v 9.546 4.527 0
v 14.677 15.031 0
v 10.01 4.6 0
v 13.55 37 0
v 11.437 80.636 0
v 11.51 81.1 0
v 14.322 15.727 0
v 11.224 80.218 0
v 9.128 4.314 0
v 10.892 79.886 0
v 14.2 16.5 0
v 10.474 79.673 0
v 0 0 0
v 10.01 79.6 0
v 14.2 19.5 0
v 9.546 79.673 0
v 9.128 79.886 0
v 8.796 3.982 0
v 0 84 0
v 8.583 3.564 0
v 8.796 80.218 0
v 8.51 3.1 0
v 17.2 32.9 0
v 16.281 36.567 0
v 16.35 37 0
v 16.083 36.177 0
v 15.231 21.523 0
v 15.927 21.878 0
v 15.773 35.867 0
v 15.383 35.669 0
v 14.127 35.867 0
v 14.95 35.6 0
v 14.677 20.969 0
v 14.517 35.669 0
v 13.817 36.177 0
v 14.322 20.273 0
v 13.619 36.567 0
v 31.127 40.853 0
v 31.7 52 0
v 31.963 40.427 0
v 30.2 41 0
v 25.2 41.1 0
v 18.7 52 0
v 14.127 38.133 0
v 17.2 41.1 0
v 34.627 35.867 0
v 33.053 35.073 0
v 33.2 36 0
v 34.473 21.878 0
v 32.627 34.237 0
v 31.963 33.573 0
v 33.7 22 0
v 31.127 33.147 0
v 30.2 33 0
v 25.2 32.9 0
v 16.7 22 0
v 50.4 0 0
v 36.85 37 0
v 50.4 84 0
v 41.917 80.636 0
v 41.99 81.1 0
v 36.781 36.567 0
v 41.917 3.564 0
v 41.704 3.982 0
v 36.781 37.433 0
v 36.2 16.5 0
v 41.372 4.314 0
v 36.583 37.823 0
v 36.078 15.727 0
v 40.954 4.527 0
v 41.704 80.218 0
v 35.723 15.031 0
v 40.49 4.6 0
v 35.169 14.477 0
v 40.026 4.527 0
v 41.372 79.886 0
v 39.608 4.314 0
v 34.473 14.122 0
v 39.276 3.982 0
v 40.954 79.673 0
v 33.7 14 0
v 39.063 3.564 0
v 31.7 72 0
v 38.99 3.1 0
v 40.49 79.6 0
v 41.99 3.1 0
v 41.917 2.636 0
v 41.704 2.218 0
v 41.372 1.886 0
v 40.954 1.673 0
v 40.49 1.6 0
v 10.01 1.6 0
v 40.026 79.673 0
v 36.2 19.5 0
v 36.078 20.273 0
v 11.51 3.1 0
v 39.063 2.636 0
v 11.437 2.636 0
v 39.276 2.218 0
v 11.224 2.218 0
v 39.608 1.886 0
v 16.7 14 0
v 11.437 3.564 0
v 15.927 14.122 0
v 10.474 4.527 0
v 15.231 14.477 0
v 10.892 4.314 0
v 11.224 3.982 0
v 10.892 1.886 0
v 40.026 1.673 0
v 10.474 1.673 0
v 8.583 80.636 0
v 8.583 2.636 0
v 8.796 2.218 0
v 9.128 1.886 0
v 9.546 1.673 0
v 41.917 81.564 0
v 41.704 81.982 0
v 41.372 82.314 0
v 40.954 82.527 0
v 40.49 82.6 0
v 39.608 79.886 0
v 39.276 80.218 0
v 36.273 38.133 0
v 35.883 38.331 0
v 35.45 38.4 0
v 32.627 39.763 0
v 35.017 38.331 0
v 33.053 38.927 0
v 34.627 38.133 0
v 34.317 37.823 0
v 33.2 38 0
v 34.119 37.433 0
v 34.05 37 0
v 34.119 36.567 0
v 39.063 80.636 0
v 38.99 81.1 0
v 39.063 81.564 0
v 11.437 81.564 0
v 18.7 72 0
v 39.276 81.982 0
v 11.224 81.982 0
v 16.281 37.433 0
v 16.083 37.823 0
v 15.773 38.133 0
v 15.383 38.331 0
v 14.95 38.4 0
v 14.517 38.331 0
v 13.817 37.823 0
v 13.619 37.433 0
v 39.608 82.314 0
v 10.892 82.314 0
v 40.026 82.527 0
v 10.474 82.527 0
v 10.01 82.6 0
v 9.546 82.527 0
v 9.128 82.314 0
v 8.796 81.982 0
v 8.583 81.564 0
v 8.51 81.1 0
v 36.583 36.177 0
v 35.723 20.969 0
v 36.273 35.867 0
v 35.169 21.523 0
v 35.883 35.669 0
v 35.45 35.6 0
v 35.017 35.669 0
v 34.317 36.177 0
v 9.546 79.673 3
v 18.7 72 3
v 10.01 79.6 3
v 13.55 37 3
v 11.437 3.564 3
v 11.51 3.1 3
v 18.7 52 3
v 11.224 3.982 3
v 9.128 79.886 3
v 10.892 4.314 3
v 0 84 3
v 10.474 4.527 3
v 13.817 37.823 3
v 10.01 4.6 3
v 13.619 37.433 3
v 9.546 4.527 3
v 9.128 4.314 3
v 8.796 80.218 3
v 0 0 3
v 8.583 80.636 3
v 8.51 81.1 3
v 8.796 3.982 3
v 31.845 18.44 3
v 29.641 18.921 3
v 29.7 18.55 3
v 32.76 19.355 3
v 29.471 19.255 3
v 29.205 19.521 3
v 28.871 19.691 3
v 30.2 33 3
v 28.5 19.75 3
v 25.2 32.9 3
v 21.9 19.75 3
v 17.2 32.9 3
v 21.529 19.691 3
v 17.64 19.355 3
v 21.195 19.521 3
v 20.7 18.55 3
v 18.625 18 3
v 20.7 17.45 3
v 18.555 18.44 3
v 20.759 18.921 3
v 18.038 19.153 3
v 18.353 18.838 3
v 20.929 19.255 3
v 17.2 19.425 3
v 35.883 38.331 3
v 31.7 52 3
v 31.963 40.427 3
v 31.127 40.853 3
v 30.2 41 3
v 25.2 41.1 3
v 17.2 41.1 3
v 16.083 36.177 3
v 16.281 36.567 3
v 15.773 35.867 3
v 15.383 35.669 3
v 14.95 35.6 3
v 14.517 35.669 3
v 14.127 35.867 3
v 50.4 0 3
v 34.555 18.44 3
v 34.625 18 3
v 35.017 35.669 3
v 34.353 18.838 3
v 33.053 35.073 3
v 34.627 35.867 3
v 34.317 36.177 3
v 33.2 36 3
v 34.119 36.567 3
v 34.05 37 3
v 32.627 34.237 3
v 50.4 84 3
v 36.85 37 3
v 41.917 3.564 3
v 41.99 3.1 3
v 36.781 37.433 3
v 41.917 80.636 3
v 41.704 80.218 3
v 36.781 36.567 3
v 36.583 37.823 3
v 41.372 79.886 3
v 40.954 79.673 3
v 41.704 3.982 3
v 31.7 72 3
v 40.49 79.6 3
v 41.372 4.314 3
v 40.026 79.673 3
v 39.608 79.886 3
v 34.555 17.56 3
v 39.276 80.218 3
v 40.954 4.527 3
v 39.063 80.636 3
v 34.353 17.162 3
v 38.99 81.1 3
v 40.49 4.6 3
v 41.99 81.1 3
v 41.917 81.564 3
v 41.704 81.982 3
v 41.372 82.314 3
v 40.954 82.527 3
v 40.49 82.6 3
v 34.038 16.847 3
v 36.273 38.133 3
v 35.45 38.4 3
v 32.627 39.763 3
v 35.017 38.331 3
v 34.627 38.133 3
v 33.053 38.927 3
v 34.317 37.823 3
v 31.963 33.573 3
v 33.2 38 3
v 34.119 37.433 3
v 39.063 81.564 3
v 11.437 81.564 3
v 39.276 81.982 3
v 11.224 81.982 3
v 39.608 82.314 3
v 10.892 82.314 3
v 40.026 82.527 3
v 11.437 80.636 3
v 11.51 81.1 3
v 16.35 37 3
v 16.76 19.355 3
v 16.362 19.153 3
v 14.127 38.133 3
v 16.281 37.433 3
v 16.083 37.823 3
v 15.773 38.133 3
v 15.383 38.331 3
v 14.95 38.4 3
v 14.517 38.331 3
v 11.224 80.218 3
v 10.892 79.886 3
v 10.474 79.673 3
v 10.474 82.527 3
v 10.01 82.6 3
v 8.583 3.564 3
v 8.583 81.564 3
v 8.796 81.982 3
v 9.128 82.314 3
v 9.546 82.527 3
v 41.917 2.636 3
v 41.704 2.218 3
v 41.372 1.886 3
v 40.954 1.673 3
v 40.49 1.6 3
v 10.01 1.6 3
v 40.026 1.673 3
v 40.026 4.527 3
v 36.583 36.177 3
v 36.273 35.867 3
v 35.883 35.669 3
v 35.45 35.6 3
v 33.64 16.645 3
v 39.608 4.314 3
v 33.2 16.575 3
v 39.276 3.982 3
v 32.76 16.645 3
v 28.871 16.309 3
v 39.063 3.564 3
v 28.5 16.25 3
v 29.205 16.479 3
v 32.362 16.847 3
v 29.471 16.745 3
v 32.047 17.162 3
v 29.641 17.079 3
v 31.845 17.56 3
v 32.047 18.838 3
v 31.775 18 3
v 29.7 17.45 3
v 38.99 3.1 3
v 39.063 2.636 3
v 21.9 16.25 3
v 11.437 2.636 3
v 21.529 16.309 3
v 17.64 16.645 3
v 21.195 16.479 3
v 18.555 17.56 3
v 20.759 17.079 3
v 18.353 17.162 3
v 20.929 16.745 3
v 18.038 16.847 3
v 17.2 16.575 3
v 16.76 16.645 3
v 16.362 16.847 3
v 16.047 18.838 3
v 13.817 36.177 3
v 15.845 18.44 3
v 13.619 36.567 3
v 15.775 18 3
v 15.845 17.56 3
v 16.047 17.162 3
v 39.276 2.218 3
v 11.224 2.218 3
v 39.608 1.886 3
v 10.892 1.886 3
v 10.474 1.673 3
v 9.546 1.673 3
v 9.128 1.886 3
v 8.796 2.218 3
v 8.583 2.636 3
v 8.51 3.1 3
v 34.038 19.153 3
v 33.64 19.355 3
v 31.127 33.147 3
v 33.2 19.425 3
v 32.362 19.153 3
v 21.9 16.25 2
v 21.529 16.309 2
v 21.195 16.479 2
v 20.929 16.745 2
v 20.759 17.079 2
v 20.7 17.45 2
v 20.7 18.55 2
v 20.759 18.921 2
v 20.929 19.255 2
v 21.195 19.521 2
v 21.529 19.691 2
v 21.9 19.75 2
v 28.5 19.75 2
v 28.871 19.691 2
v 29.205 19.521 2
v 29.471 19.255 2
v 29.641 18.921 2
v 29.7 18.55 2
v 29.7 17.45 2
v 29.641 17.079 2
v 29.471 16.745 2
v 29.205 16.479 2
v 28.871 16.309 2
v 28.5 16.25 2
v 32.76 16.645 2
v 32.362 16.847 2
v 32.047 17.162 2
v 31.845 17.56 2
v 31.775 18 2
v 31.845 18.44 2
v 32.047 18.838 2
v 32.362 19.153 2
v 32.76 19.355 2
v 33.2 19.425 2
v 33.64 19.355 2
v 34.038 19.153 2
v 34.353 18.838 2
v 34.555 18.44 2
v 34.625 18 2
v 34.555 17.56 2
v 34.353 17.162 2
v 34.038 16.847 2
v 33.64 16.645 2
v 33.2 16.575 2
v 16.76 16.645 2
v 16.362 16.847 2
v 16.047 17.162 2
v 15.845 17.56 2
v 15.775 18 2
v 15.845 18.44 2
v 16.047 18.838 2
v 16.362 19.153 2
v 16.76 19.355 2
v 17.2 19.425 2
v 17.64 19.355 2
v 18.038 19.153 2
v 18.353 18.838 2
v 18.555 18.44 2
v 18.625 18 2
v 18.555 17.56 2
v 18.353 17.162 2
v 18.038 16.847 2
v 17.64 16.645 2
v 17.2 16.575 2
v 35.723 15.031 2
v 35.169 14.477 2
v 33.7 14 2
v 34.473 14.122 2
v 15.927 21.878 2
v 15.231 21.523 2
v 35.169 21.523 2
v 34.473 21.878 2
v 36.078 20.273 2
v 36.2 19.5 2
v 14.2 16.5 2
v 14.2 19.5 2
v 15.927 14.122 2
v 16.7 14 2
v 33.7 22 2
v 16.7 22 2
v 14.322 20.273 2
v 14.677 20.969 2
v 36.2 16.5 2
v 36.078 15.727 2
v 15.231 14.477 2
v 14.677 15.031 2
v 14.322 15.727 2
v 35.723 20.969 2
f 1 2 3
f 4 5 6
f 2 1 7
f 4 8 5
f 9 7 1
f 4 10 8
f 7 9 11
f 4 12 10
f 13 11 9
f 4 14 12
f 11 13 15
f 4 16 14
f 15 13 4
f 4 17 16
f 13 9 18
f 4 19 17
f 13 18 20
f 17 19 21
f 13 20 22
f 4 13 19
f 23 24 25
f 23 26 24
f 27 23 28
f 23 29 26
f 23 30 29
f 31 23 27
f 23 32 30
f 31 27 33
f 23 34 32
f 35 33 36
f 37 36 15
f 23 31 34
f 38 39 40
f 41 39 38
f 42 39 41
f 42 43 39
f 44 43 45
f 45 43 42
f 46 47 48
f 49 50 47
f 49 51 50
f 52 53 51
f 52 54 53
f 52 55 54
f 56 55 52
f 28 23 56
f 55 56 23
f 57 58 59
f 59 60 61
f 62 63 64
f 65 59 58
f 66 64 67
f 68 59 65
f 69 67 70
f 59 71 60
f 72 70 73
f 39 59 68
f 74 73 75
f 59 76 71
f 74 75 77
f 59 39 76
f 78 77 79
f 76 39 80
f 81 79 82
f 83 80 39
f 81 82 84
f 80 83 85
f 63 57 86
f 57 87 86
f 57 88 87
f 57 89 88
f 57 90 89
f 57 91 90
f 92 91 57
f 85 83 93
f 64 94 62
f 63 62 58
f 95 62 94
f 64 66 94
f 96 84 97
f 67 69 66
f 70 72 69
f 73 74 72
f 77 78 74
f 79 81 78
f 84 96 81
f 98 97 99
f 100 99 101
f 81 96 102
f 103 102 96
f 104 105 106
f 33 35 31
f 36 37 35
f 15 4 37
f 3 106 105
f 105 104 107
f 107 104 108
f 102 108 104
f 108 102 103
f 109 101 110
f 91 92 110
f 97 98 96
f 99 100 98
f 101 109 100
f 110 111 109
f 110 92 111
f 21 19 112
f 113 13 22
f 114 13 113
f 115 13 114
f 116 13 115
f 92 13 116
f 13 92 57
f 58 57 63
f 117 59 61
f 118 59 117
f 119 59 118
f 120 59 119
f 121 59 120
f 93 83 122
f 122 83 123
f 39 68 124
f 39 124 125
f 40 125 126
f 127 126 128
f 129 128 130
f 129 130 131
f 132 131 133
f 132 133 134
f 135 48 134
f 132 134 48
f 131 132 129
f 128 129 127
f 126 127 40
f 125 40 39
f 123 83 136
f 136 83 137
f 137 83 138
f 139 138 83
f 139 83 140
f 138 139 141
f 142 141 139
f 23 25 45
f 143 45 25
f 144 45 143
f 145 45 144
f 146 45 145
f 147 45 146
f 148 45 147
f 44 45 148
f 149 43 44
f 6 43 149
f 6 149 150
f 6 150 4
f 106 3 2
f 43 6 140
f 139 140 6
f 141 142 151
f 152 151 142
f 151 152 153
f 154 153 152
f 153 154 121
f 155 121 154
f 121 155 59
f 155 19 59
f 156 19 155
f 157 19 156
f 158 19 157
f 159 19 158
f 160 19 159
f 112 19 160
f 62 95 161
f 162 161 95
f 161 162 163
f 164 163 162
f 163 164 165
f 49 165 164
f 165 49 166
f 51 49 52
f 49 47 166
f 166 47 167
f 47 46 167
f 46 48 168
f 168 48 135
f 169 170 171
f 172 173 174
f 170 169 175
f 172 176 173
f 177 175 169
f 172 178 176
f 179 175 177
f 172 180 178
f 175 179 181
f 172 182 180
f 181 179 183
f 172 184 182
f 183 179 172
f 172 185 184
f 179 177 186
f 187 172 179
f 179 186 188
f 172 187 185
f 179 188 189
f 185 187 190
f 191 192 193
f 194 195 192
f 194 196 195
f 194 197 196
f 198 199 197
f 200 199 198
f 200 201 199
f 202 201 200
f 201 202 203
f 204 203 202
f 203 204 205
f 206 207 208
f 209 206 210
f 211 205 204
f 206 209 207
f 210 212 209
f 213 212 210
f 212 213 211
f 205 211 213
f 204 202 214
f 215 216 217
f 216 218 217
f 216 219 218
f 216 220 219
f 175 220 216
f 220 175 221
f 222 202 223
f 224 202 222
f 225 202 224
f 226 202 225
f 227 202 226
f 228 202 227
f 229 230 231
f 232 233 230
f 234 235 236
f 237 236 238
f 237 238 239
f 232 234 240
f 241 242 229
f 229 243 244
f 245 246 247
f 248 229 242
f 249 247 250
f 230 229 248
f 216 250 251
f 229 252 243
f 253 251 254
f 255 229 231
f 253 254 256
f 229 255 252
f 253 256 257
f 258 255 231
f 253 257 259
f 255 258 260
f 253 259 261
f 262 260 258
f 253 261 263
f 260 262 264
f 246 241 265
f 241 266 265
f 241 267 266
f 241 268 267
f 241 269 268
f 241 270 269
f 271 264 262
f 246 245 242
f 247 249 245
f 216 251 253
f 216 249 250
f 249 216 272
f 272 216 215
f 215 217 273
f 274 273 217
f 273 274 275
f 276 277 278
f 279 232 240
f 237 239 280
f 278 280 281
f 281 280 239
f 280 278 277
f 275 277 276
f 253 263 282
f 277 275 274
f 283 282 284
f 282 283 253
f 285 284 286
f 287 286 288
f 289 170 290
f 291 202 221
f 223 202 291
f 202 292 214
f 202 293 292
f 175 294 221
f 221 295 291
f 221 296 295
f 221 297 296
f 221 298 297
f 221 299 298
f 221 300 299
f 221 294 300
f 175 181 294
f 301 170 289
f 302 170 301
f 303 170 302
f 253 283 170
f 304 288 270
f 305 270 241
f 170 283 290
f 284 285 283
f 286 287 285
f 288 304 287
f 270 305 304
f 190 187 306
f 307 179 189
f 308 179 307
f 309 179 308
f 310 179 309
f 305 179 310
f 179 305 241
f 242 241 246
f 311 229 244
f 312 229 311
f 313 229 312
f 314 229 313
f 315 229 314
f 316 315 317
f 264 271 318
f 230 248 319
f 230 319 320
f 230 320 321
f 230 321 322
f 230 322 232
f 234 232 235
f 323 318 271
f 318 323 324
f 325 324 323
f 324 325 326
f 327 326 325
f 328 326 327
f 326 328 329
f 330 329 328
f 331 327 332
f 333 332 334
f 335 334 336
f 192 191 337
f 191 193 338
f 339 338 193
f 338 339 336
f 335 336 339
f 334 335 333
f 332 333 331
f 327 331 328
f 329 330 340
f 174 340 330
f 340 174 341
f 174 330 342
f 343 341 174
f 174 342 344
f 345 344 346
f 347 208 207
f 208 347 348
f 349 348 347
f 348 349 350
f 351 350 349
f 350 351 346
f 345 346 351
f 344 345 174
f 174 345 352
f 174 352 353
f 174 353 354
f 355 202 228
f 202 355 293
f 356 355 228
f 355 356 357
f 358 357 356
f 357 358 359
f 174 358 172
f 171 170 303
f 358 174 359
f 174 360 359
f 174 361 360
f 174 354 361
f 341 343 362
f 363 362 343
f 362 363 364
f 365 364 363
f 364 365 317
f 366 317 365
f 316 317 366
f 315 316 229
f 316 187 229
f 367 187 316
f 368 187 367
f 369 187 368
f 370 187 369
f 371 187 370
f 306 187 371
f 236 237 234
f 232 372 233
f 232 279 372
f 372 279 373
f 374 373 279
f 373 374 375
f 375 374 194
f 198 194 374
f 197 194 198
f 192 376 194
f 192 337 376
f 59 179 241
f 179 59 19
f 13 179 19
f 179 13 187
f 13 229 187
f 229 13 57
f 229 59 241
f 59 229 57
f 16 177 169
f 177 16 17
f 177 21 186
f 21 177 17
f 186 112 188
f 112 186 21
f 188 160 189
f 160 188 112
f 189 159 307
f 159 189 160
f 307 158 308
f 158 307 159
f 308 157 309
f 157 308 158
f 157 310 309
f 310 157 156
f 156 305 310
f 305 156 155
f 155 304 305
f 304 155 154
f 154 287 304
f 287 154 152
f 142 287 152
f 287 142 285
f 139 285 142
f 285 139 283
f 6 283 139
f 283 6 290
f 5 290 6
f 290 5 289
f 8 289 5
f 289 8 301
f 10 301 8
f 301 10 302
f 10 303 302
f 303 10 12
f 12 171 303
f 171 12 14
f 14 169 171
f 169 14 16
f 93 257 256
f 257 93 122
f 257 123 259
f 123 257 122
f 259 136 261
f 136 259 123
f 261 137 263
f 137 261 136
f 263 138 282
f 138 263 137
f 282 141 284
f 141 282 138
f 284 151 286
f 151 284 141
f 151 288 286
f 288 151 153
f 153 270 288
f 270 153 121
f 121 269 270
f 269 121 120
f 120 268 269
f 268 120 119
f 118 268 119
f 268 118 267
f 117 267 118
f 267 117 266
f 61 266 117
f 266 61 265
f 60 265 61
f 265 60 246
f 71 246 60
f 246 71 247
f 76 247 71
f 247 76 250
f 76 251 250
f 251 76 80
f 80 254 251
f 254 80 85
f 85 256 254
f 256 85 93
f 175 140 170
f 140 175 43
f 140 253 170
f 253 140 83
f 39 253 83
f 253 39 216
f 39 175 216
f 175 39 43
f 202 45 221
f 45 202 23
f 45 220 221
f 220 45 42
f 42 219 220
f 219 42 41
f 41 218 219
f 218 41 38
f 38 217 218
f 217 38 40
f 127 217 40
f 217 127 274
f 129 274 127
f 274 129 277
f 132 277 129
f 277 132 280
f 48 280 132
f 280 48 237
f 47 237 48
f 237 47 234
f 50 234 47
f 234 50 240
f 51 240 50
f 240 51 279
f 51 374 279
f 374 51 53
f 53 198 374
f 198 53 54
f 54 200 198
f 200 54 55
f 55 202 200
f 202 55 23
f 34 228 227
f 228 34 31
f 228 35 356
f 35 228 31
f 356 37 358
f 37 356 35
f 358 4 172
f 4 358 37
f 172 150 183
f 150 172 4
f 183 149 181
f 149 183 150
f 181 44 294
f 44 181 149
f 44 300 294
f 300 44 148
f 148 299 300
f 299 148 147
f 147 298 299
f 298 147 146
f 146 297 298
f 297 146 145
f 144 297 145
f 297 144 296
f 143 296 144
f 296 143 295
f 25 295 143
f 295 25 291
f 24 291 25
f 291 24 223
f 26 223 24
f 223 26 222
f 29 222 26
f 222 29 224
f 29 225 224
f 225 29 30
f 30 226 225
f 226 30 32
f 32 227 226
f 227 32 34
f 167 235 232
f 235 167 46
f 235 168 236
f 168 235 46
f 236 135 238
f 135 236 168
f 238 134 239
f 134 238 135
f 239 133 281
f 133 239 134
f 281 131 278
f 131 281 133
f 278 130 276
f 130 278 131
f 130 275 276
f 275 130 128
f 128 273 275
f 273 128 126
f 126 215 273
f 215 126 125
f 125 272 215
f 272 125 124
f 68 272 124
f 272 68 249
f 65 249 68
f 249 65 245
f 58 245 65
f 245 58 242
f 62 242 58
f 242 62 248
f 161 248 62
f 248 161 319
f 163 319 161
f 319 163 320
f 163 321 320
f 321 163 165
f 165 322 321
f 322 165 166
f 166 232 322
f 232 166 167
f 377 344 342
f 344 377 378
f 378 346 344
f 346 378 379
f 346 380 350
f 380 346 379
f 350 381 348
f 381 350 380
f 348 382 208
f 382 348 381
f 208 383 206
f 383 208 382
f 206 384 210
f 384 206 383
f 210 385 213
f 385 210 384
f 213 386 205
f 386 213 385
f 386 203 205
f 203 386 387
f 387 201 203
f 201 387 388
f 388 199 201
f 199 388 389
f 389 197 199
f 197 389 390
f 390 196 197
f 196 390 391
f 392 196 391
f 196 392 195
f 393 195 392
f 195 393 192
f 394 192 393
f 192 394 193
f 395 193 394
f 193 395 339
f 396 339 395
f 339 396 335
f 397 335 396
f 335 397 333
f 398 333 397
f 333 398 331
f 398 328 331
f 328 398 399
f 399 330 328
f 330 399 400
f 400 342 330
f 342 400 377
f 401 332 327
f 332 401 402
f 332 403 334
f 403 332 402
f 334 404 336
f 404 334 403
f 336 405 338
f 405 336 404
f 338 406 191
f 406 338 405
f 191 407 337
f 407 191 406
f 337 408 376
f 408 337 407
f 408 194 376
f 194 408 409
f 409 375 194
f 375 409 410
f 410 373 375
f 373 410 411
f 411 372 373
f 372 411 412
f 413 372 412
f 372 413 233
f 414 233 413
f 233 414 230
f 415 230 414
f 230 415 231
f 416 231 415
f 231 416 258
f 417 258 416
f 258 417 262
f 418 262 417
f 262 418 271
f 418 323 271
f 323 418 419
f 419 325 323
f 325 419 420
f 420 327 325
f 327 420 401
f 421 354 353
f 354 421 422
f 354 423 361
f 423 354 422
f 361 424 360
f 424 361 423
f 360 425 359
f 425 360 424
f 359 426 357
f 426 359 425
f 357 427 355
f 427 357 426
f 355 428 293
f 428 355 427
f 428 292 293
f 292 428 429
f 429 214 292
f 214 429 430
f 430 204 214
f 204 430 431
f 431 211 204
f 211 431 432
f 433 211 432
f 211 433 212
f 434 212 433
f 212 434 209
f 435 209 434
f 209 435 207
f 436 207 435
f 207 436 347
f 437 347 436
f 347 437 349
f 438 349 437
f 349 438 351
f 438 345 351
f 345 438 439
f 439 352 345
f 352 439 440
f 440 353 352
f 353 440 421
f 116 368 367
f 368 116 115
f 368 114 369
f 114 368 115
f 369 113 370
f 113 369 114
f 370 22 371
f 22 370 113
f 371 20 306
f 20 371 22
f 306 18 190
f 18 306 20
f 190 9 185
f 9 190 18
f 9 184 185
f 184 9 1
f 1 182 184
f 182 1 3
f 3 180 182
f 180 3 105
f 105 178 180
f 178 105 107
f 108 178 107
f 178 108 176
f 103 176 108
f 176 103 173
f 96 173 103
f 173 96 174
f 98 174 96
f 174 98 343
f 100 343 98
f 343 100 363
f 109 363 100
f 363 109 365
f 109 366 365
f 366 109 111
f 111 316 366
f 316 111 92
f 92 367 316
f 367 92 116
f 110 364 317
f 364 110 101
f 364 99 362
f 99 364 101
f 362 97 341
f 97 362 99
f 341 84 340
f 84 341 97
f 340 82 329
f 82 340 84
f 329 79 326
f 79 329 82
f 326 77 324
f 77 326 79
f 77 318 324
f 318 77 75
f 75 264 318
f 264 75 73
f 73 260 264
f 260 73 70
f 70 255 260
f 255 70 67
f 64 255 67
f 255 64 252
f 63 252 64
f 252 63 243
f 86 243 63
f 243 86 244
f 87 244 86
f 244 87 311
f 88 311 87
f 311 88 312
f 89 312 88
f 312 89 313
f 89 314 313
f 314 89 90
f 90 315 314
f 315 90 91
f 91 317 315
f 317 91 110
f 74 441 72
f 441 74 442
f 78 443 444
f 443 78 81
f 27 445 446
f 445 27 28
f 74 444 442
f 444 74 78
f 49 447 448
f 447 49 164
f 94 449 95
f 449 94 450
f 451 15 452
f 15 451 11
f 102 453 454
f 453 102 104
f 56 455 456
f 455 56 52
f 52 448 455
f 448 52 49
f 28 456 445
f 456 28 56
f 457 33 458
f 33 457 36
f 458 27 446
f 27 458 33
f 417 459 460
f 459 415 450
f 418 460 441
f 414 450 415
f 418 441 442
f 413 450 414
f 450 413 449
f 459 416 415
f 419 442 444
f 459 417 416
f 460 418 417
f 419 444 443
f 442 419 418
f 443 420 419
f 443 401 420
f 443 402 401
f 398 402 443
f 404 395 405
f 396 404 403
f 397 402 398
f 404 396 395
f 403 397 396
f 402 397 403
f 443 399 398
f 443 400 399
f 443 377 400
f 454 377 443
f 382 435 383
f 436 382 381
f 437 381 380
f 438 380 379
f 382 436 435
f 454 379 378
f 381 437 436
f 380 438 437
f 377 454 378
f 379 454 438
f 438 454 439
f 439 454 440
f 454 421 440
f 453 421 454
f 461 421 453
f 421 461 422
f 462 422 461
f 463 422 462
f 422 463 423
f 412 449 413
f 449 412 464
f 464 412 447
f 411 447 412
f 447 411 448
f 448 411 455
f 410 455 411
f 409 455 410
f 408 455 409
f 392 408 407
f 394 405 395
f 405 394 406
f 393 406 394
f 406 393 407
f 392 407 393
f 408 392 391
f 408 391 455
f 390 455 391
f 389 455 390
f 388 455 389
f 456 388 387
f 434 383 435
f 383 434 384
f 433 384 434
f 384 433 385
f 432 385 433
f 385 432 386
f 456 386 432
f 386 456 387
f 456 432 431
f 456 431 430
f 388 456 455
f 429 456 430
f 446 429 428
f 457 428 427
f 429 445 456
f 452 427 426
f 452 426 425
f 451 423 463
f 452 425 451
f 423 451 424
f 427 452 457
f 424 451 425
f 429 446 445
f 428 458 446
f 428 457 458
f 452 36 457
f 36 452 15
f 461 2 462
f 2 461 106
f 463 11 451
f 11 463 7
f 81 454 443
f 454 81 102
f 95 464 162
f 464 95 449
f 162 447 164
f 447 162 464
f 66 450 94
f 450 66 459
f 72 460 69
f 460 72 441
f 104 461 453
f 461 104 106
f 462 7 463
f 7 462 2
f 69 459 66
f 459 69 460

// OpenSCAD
// file: panel.scad
$fn = 20;
U = 3;
T = 16;

h = U * 44.5 - 5;
w = T * 5.08 - 2*.2;

m_x = 7.47;
//m_x = 0;
m_y = 3.1;
m_d = 3;

F = U * 44.5 + (122.5 - 3 * 44.5);

echo(w);

module hole() {
//    hull() {
    //circle(d=m_d);
    translate([5.08/2,0]) circle(d=m_d);
//    }
}

module holes() {
    translate([m_x, m_y]) hole();
    translate([m_x, m_y + F]) hole();
}

module panel() {
    difference() {
    square([w, h]);
        holes();
        if(T>6) {
            translate([(T-3) * 5.08 - 5.08, 0]) holes();
        }
        translate([(T-24) * 5.08, 0]) holes();
    }
}

//panel();

//#square([46,62]);
//#import("jr-module-bay-cover.stl");
// main file
b_w = 13;
b_h = 20;

include <panel.scad>

T=10;
U=2;

module xt60em() {
    translate([-20.5/2,0])circle(d=2.8);
    translate([20.5/2,0]) circle(d=2.8);
    hull() {
        translate([-8/2,0])
        square([8,8.2],true);
        translate([4+1,0-1])
        circle(4-1);
        translate([4+1,0+1])
        circle(4-1);
    }
}


difference() {
    linear_extrude(3)
    difference() {
    panel();
        translate([w/2,3/4*h - 1])
        square([b_w,b_h], true);
        
        translate([w/2,h/2 - 5])
        xt60em();

        hull() {
            offset(r=1.2)
            offset(delta=-1.2)
            translate([w/2,h/4 - 3])
            
            square([9, 3.5], true);           
        }
        
        translate([w/2 + 8,h/4 - 3])
        circle(d=2.85);
        
        translate([w/2 - 8,h/4 - 3])
        circle(d=2.85);   
    }
    
    difference() {
        linear_extrude(2)
        translate([w/2,h/4 - 3, 0])
        offset(r=2.5)
        offset(delta=-2.5)
        square([22,8], true);
    }
}
